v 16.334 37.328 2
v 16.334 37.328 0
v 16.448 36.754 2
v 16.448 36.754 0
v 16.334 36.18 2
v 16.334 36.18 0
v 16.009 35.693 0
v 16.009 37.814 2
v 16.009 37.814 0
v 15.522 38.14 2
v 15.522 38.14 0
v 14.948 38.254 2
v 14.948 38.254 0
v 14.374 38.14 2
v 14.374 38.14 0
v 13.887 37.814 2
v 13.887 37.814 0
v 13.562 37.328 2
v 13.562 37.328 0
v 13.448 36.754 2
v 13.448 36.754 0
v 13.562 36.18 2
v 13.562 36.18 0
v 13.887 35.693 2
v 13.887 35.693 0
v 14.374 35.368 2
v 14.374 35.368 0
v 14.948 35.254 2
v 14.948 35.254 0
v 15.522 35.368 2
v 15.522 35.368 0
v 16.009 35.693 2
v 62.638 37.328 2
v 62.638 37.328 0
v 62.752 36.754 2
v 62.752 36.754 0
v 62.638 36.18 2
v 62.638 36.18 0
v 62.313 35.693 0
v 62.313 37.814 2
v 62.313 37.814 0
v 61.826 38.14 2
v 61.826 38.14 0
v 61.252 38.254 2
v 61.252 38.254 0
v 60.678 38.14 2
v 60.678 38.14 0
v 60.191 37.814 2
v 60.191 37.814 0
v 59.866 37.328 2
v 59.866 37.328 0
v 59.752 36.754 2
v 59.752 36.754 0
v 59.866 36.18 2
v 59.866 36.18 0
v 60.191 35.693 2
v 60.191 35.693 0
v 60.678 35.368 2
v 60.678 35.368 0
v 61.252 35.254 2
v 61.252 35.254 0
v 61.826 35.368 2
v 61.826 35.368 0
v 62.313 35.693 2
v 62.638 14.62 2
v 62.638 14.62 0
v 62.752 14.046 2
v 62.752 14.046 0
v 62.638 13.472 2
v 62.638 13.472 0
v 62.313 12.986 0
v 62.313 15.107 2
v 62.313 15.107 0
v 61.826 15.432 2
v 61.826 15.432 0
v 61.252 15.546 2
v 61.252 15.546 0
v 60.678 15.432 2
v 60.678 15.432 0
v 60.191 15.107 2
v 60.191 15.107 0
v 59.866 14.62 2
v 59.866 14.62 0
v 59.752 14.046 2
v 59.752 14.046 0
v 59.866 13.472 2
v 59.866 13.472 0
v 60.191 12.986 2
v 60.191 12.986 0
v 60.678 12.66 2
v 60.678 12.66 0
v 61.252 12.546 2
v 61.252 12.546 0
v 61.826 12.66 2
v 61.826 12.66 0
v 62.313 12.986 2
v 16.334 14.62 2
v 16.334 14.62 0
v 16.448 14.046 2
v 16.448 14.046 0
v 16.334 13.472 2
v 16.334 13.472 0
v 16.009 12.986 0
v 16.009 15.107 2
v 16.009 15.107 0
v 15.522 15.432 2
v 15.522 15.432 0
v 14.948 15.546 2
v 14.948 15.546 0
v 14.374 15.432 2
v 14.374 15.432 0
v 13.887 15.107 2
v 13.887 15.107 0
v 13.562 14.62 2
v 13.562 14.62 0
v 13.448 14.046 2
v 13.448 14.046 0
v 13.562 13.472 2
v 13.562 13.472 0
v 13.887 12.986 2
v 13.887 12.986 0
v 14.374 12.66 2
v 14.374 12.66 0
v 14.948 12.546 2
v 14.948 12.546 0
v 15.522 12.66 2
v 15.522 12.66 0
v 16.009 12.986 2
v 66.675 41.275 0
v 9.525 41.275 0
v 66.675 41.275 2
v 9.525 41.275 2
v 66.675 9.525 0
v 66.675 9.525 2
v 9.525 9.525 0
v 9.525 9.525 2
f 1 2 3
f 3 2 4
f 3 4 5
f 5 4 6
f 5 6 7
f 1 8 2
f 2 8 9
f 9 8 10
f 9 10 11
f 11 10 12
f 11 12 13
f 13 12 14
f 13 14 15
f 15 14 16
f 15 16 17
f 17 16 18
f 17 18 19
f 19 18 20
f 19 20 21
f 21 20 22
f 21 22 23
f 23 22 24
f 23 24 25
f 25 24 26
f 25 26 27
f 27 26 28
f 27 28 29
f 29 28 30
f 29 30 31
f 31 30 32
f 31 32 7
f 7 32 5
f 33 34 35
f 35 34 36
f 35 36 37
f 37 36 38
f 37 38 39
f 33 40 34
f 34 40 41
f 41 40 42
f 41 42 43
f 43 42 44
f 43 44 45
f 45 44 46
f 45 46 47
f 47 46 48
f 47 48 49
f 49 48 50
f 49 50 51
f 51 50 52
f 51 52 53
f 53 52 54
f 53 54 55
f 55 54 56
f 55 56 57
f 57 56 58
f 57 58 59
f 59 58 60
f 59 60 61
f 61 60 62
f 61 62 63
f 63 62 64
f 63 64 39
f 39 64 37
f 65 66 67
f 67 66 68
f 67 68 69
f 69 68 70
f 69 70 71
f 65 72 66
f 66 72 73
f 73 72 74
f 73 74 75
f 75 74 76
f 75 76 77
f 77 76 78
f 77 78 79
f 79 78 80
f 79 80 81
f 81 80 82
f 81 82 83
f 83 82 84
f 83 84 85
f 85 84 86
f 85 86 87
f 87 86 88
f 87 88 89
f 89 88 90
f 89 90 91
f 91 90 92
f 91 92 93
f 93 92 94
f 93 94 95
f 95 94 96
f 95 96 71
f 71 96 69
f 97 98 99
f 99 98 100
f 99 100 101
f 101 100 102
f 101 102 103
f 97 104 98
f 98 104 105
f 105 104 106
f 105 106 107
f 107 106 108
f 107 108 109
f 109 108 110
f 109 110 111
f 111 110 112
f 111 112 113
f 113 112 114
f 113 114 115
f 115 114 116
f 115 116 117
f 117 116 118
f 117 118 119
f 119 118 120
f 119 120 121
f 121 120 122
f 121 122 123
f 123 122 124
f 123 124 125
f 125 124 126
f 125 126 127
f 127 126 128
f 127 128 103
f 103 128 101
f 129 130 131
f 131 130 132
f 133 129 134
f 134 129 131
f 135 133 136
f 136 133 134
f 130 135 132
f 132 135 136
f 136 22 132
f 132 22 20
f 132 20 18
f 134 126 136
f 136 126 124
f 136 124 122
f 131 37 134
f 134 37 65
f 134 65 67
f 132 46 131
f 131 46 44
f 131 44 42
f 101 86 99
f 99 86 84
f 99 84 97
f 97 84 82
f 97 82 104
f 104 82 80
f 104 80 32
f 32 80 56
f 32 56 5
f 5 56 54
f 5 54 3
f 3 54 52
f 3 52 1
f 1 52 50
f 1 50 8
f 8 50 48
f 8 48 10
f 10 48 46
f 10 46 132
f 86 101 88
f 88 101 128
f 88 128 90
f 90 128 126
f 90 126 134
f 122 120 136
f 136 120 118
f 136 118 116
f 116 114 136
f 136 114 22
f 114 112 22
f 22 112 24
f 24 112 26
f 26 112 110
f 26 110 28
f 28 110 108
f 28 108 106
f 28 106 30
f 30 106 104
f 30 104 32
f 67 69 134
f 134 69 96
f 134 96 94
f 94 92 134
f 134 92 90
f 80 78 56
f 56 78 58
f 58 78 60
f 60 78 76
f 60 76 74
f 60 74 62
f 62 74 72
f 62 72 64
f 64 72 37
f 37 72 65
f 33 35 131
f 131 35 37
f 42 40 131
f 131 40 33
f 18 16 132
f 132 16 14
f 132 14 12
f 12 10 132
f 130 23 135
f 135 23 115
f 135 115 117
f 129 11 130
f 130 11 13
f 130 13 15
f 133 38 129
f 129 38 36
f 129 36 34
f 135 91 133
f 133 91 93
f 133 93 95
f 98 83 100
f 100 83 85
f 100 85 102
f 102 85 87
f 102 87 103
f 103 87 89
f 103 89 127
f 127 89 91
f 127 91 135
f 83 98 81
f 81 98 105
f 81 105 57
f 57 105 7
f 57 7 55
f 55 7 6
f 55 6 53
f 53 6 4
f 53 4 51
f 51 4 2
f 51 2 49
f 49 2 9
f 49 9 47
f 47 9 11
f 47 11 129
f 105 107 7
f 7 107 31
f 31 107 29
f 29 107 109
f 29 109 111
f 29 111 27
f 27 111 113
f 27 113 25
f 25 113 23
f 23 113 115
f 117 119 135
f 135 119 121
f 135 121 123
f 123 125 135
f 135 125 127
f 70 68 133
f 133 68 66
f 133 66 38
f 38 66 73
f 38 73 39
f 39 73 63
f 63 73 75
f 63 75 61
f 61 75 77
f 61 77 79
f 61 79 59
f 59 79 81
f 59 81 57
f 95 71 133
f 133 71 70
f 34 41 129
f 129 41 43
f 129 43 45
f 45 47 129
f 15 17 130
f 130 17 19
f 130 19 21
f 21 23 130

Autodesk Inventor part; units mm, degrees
ref_plane "YZ Plane" through (0, 0, 0) normal (1, 0, 0) x (0, 1, 0)
ref_plane "XZ Plane" through (0, 0, 0) normal (0, 1, 0) x (-1, 0, 0)
ref_plane "XY Plane" through (0, 0, 0) normal (0, 0, 1) x (1, 0, 0)
sketch "Sketch1" plane through (0, 0, 0) normal (0, 0, 1) x (1, 0, 0)
  line L0 (0, 0) -> (0, 50.8)
  line L1 (0, 50.8) -> (76.2, 50.8)
  line L2 (76.2, 50.8) -> (76.2, 0)
  line L3 (76.2, 0) -> (0, 0)
  circle A0 centre (61.2521, 14.0462) radius 1.5
  circle A1 centre (14.9479, 14.0462) radius 1.5
  circle A2 centre (61.2521, 36.7538) radius 1.5
  circle A3 centre (14.9479, 36.7538) radius 1.5
  line L4 (14.9479, 36.7538) -> (14.9479, 14.0462)
  line L5 (0, 25.4) -> (-9.2458, 25.4)
  line L6 (66.675, 41.275) -> (9.525, 41.275)
  line L7 (9.525, 41.275) -> (9.525, 9.525)
  line L8 (9.525, 9.525) -> (66.675, 9.525)
  line L9 (66.675, 9.525) -> (66.675, 41.275)
  dimension "d0" = 50.8
  dimension "d1" = 76.2
  dimension "d2" = 3
  dimension "d3" = 3
  dimension "d4" = 9.525
extrude "Extrusion1" add sketch "Sketch1" along normal blind 2 contours L9 L8 L7 L6
properties part number "baseplate"
